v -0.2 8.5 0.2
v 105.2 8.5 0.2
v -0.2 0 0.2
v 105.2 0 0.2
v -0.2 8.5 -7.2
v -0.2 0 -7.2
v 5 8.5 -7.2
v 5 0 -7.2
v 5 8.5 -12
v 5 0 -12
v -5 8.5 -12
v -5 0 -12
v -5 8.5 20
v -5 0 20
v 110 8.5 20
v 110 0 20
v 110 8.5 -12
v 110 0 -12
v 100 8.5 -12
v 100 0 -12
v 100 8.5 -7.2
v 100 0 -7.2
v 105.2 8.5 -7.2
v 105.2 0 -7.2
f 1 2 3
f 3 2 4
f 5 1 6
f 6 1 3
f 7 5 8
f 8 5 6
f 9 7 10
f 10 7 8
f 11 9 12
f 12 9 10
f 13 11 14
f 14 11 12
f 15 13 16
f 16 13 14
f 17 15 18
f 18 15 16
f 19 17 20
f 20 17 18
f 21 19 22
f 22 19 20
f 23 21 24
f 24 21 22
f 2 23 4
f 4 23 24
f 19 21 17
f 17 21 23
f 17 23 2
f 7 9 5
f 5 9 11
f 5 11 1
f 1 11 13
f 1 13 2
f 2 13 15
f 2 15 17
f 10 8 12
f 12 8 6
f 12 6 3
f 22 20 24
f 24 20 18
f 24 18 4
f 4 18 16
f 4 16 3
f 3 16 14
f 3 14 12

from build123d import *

# Parameters (mm, degrees)
BOSS_EXTRUDE1_DEPTH = 8.5


with BuildPart() as part:
    # Sketch1 → Boss-Extrude1 (new body)
    with BuildSketch(Plane(origin=(0, 0, 0), x_dir=(1, 0, 0), z_dir=(0, 1, 0))):
        Polygon((-0.2, 7.2), (5, 7.2), (5, 12), (-5, 12), (-5, -20), (52.5, -20), (52.5, -0.2), (-0.2, -0.2), align=None)
        Polygon((100, 12), (100, 7.2), (105.2, 7.2), (105.2, -0.2), (52.5, -0.2), (52.5, -20), (110, -20), (110, 12), align=None)
    extrude(amount=BOSS_EXTRUDE1_DEPTH)


solid = part.part
